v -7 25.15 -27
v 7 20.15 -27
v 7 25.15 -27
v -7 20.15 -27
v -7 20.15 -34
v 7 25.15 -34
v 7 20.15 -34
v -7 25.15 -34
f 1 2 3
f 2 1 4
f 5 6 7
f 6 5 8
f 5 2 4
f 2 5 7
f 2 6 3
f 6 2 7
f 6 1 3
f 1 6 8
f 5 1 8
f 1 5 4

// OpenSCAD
// file: C:/od/OneDrive/Documents/ChatGPT/oomlout_oobb_part_motor_gearbox_wave_drive_version_5/parts/oobb_part_motor_gearbox_wave_drive_version_5_12_to_1_reduction/nema17_reference.scad
// Visual reference matching the previous cycloidal project's 40 mm motor envelope.
// Face is Z=0; motor body extends towards -Z and shaft towards +Z.
// End caps, corner chamfers and connector are illustrative external details.
// This is purchased reference hardware, never a printable gearbox component.
module nema17_outline(width=42.3,depth=6,chamfer=3) {
    w=width/2;
    linear_extrude(depth) polygon([
        [-w+chamfer,-w],[w-chamfer,-w],[w,-w+chamfer],[w,w-chamfer],
        [w-chamfer,w],[-w+chamfer,w],[-w,w-chamfer],[-w,-w+chamfer]
    ]);
}
module nema17_front() {
    difference() {
        translate([0,0,-motor_cap_depth])
            nema17_outline(motor_body_width,motor_cap_depth,motor_corner_chamfer);
        for(x=[-motor_hole_pitch/2,motor_hole_pitch/2],y=[-motor_hole_pitch/2,motor_hole_pitch/2])
            translate([x,y,-motor_thread_depth]) cylinder(d=3,h=motor_thread_depth+0.01);
        translate([0,0,-motor_cap_depth-0.01]) cylinder(d=motor_shaft_diameter,h=motor_cap_depth+0.02);
    }
}
module nema17_stator() {
    translate([0,0,-motor_body_depth+motor_cap_depth])
        nema17_outline(motor_body_width,motor_body_depth-2*motor_cap_depth,motor_corner_chamfer);
}
module nema17_rear() {
    difference() {
        translate([0,0,-motor_body_depth])
            nema17_outline(motor_body_width,motor_cap_depth,motor_corner_chamfer);
        for(x=[-motor_hole_pitch/2,motor_hole_pitch/2],y=[-motor_hole_pitch/2,motor_hole_pitch/2])
            translate([x,y,-motor_body_depth-0.01]) cylinder(d=4.5,h=1.2);
    }
}
module nema17_pilot() {
    difference() {
        cylinder(d=motor_pilot_diameter,h=motor_pilot_height);
        translate([0,0,-0.01]) cylinder(d=motor_shaft_diameter,h=motor_pilot_height+0.02);
    }
}
module nema17_shaft() {
    linear_extrude(motor_shaft_length) intersection() {
        circle(d=motor_shaft_diameter);
        translate([-10,-10]) square([10+motor_shaft_diameter/2-motor_shaft_flat_depth,20]);
    }
}
module nema17_connector() {
    // Indicative connector envelope; actual cable exit depends on motor model.
    translate([-7,motor_body_width/2-1,-motor_body_depth+motor_cap_depth])
        cube([14,5,7]);
}
module nema17_reference() {
    color("Silver") { nema17_front(); nema17_rear(); nema17_pilot(); nema17_shaft(); }
    color([0.08,0.08,0.08]) nema17_stator();
    color([0.2,0.2,0.2]) nema17_connector();
}
// file: C:/od/OneDrive/Documents/ChatGPT/oomlout_oobb_part_motor_gearbox_wave_drive_version_5/parts/oobb_part_motor_gearbox_wave_drive_version_5_12_to_1_reduction/motor_reference_parameters.scad
// Purchased motor envelope. Recipe defines body, shaft and mounting dimensions.
motor_body_depth = 40.0;
motor_shaft_length = 24.0;
motor_hole_pitch = 31.0;
motor_thread_depth = 6.0;
motor_pilot_diameter = 22.0;
motor_pilot_height = 2.0;
motor_shaft_end_clearance = 0.5;
motor_thread_engagement = 5.2;
motor_shaft_diameter = 5.0;
motor_body_width = 42.3;
motor_cap_depth = 6.0;
motor_corner_chamfer = 3.0;
motor_shaft_flat_depth = 0.5;
motor_face_z = 0.0;
// main file
include <C:/od/OneDrive/Documents/ChatGPT/oomlout_oobb_part_motor_gearbox_wave_drive_version_5/parts/oobb_part_motor_gearbox_wave_drive_version_5_12_to_1_reduction/motor_reference_parameters.scad>
include <C:/od/OneDrive/Documents/ChatGPT/oomlout_oobb_part_motor_gearbox_wave_drive_version_5/parts/oobb_part_motor_gearbox_wave_drive_version_5_12_to_1_reduction/nema17_reference.scad>
$fn=120;
nema17_connector();
